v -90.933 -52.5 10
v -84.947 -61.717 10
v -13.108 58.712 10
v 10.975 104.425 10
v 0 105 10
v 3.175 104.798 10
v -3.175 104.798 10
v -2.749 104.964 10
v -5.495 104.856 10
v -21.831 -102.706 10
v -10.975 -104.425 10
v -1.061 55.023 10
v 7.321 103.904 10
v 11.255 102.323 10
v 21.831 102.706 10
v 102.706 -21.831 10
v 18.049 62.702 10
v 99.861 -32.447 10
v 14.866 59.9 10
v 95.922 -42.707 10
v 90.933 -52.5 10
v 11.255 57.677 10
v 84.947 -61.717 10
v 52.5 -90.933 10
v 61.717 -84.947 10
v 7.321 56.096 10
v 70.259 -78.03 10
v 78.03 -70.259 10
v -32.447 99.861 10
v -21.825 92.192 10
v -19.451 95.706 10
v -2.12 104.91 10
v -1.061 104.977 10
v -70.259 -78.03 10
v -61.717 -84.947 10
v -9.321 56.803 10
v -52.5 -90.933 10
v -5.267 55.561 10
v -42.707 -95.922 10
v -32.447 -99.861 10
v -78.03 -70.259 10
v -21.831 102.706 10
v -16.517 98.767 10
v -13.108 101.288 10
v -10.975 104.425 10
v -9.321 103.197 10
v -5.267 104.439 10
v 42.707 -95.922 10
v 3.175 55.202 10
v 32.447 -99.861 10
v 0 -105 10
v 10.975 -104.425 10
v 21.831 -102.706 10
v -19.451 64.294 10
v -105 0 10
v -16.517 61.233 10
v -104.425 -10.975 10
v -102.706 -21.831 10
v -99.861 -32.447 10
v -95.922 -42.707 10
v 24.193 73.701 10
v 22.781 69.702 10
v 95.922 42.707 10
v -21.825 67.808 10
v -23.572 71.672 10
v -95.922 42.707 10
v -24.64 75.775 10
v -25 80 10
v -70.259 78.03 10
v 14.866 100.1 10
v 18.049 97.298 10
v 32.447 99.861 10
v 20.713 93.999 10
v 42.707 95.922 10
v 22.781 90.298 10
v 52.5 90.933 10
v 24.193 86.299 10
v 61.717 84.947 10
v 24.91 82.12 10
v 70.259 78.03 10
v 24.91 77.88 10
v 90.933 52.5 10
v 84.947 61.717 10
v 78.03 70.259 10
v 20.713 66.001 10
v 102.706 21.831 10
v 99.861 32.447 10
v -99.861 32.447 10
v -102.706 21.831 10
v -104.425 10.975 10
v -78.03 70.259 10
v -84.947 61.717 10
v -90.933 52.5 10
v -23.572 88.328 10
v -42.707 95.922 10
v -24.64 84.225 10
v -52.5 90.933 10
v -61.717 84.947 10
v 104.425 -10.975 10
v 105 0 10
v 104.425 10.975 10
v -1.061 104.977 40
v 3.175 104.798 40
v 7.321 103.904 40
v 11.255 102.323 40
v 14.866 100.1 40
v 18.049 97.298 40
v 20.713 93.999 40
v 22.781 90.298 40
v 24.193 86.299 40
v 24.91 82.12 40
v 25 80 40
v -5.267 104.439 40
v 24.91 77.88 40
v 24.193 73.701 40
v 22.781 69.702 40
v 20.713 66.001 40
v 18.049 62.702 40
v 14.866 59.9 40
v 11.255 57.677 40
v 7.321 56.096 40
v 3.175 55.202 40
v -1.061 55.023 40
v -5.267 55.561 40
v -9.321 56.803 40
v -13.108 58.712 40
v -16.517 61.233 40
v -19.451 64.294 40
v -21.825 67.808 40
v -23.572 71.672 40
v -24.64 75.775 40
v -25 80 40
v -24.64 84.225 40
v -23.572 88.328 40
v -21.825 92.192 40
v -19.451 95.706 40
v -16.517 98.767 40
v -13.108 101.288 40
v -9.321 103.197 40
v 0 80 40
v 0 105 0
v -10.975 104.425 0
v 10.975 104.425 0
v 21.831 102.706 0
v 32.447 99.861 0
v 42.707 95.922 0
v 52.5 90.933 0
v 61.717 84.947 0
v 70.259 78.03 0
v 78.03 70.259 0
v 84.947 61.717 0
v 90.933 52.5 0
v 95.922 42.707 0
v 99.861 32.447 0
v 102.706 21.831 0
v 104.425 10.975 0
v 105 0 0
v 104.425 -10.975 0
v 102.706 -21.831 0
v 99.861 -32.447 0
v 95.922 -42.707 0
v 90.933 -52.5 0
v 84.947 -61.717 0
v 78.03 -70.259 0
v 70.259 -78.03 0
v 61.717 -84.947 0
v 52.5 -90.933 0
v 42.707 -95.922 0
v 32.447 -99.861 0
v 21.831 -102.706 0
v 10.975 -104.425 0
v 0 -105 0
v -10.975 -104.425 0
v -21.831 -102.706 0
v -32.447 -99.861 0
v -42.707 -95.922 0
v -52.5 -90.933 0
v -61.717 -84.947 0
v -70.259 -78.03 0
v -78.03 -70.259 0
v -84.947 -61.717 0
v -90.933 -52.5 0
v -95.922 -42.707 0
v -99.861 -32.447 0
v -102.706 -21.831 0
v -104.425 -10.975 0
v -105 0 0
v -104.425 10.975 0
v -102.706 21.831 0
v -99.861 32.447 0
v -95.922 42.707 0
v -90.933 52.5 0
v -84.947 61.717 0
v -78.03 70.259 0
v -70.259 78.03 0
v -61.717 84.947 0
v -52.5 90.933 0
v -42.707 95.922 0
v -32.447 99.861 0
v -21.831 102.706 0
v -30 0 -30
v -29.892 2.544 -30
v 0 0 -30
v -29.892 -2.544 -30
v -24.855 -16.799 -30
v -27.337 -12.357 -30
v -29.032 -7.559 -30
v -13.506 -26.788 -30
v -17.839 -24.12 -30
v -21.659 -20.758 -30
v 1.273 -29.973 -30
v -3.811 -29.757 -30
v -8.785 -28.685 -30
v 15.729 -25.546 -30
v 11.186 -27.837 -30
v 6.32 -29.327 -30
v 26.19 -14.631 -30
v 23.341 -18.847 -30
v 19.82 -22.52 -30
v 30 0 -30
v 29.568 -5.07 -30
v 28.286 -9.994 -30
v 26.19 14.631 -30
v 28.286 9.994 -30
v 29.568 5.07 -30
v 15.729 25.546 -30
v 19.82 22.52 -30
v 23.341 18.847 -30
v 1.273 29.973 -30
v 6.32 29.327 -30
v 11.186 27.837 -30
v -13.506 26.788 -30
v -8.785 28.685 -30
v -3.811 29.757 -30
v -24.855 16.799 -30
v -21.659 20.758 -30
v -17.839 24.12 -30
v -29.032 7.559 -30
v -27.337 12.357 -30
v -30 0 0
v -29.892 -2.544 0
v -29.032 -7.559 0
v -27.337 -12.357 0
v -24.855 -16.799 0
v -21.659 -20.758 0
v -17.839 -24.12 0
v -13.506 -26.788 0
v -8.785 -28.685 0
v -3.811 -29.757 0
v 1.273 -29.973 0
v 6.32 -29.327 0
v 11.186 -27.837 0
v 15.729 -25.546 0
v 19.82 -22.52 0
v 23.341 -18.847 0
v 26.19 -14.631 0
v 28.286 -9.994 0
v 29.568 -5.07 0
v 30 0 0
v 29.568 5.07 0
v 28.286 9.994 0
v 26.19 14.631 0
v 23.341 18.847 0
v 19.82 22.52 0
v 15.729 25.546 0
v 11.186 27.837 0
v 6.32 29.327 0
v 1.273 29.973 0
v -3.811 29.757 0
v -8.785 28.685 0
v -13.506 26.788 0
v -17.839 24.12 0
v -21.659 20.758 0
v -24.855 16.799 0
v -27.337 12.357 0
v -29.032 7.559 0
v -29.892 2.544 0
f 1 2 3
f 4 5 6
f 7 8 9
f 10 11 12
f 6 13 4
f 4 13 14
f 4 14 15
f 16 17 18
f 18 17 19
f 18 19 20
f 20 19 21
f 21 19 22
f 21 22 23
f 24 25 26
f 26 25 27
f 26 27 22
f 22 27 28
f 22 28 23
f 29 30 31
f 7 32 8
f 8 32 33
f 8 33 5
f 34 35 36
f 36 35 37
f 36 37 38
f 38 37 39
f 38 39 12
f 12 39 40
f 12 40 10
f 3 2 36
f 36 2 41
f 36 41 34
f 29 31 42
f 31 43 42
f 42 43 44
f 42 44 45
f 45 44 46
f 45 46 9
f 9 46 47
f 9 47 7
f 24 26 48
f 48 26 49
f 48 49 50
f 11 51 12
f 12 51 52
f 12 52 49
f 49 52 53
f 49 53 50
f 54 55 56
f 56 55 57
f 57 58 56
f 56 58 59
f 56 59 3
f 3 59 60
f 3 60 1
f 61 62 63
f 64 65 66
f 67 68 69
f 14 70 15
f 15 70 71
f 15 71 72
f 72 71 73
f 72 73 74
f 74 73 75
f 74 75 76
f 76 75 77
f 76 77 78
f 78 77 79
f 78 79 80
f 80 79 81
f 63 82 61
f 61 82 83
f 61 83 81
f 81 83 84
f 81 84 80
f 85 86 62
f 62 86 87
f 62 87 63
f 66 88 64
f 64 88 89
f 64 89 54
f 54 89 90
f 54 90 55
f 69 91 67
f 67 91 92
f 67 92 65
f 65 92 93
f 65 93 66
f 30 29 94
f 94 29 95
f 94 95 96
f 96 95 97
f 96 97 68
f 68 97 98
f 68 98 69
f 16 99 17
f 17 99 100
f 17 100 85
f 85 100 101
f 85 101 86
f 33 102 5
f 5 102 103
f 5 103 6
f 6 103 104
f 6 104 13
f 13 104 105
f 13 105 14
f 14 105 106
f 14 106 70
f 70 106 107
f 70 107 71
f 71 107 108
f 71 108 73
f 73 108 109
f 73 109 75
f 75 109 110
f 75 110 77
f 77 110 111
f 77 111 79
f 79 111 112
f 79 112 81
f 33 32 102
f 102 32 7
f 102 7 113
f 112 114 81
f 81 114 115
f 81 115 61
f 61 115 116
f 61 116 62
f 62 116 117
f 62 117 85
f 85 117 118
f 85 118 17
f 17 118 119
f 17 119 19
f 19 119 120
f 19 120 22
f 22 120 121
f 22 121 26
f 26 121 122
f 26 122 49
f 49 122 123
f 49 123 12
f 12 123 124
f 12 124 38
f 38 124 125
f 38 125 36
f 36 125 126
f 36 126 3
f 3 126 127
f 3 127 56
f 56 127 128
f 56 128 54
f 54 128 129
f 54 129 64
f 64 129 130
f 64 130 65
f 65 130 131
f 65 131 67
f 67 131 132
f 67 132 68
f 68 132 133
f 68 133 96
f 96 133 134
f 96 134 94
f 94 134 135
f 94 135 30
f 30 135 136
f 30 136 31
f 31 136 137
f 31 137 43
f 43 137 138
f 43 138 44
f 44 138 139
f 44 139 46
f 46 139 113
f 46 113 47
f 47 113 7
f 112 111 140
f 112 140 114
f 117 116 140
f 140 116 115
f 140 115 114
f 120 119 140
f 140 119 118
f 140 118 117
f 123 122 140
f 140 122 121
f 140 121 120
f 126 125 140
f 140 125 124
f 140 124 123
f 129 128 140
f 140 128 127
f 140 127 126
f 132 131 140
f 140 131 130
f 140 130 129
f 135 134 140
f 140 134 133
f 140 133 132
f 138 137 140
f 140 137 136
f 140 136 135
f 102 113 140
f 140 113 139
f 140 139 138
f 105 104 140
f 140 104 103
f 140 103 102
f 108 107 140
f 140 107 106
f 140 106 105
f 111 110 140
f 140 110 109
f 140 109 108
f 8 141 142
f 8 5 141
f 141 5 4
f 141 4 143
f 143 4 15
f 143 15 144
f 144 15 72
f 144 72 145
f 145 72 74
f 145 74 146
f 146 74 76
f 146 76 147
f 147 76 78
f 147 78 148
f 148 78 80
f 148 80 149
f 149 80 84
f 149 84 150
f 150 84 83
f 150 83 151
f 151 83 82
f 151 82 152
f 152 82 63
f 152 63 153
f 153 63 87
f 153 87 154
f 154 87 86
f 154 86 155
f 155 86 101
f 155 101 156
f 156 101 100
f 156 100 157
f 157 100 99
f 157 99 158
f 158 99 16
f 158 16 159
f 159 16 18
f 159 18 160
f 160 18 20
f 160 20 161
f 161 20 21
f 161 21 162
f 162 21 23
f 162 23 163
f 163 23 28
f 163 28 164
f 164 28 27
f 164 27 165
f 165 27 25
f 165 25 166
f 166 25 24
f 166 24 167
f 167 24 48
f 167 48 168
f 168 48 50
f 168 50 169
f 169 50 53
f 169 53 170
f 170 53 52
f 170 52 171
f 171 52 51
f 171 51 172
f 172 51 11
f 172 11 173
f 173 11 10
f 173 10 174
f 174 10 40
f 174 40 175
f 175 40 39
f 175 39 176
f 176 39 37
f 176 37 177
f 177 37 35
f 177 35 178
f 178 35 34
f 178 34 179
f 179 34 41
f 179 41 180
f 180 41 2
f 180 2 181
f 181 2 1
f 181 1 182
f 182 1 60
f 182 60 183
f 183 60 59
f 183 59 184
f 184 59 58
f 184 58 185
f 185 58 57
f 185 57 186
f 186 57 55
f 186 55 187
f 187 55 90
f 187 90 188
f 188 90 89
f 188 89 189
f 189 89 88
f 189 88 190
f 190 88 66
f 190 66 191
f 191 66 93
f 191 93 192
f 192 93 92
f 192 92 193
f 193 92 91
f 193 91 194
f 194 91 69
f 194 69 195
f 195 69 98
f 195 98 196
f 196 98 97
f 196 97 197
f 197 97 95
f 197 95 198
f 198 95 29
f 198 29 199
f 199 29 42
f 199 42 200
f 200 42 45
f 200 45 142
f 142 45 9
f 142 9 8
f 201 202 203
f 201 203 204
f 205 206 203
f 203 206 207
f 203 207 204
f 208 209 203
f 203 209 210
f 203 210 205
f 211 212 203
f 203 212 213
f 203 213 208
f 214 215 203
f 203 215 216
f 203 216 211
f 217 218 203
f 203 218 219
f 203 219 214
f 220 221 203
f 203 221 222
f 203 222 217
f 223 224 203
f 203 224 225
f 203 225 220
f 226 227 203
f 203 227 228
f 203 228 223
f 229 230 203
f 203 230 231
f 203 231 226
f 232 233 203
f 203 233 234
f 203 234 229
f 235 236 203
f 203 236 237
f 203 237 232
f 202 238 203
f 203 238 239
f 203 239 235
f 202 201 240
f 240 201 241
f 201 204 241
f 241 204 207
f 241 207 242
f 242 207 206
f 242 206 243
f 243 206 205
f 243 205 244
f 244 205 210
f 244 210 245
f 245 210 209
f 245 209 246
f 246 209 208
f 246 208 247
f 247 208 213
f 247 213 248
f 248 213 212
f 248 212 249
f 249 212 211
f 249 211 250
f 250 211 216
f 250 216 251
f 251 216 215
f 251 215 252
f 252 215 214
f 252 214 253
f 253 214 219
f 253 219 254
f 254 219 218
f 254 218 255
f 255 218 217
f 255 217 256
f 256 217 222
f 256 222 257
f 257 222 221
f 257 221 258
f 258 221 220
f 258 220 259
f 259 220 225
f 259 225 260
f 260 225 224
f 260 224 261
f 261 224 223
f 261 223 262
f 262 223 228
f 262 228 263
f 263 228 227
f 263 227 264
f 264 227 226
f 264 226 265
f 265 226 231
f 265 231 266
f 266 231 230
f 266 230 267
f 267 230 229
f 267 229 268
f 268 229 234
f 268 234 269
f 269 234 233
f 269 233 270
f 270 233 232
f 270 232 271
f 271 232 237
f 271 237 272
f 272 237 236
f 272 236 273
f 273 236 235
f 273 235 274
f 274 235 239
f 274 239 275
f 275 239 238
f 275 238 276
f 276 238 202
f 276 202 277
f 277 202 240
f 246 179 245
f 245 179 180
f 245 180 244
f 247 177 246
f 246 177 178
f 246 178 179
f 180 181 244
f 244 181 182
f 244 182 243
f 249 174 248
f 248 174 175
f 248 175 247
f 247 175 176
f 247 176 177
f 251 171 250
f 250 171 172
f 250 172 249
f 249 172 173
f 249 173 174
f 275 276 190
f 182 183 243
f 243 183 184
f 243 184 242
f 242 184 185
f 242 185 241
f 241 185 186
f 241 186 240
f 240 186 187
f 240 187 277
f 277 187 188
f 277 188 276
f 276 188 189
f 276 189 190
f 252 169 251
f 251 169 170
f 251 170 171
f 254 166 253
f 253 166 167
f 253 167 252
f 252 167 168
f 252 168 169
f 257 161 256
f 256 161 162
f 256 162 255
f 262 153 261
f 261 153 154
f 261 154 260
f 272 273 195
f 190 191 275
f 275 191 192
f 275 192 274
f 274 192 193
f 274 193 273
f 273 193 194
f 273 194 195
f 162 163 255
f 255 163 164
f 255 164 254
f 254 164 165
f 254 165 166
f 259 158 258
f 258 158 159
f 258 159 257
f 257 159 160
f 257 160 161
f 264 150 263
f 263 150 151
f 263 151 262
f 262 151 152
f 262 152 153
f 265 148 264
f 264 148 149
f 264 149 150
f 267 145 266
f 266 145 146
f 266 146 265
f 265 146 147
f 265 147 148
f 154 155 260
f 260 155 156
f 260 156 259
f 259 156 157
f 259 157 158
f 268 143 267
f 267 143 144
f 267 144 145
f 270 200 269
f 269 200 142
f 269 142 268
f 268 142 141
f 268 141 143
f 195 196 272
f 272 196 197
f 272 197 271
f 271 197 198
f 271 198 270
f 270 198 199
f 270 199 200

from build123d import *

# Parameters (mm, degrees)
SKETCH1_R           = 115
BOSS_EXTRUDE1_DEPTH = 10
SKETCH2_R           = 25
BOSS_EXTRUDE2_DEPTH = 30
SKETCH3_R           = 30
BOSS_EXTRUDE3_DEPTH = 30
CUT_EXTRUDE2_START  = -10
SKETCH4_R           = 115
SKETCH4_R_2         = 105
CUT_EXTRUDE2_DEPTH  = 10


with BuildPart() as part:
    # Sketch1 → Boss-Extrude1 (new body)
    with BuildSketch(Plane.XY):
        Circle(SKETCH1_R)
    extrude(amount=BOSS_EXTRUDE1_DEPTH)

    # Sketch2 → Boss-Extrude2 (add)
    with BuildSketch(Plane.XY.offset(10)):
        with Locations((0, 80)):
            Circle(SKETCH2_R)
    extrude(amount=BOSS_EXTRUDE2_DEPTH)

    # Sketch3 → Boss-Extrude3 (add)
    with BuildSketch(Plane(origin=(0, 0, 0), x_dir=(-1, 0, 0), z_dir=(0, 0, -1))):
        Circle(SKETCH3_R)
    extrude(amount=BOSS_EXTRUDE3_DEPTH)

    # Sketch4 → Cut-Extrude2 (cut)
    with BuildSketch(Plane.XY.offset(10).offset(CUT_EXTRUDE2_START)):
        Circle(SKETCH4_R)
        Circle(SKETCH4_R_2, mode=Mode.SUBTRACT)
    extrude(amount=CUT_EXTRUDE2_DEPTH, mode=Mode.SUBTRACT)


solid = part.part
